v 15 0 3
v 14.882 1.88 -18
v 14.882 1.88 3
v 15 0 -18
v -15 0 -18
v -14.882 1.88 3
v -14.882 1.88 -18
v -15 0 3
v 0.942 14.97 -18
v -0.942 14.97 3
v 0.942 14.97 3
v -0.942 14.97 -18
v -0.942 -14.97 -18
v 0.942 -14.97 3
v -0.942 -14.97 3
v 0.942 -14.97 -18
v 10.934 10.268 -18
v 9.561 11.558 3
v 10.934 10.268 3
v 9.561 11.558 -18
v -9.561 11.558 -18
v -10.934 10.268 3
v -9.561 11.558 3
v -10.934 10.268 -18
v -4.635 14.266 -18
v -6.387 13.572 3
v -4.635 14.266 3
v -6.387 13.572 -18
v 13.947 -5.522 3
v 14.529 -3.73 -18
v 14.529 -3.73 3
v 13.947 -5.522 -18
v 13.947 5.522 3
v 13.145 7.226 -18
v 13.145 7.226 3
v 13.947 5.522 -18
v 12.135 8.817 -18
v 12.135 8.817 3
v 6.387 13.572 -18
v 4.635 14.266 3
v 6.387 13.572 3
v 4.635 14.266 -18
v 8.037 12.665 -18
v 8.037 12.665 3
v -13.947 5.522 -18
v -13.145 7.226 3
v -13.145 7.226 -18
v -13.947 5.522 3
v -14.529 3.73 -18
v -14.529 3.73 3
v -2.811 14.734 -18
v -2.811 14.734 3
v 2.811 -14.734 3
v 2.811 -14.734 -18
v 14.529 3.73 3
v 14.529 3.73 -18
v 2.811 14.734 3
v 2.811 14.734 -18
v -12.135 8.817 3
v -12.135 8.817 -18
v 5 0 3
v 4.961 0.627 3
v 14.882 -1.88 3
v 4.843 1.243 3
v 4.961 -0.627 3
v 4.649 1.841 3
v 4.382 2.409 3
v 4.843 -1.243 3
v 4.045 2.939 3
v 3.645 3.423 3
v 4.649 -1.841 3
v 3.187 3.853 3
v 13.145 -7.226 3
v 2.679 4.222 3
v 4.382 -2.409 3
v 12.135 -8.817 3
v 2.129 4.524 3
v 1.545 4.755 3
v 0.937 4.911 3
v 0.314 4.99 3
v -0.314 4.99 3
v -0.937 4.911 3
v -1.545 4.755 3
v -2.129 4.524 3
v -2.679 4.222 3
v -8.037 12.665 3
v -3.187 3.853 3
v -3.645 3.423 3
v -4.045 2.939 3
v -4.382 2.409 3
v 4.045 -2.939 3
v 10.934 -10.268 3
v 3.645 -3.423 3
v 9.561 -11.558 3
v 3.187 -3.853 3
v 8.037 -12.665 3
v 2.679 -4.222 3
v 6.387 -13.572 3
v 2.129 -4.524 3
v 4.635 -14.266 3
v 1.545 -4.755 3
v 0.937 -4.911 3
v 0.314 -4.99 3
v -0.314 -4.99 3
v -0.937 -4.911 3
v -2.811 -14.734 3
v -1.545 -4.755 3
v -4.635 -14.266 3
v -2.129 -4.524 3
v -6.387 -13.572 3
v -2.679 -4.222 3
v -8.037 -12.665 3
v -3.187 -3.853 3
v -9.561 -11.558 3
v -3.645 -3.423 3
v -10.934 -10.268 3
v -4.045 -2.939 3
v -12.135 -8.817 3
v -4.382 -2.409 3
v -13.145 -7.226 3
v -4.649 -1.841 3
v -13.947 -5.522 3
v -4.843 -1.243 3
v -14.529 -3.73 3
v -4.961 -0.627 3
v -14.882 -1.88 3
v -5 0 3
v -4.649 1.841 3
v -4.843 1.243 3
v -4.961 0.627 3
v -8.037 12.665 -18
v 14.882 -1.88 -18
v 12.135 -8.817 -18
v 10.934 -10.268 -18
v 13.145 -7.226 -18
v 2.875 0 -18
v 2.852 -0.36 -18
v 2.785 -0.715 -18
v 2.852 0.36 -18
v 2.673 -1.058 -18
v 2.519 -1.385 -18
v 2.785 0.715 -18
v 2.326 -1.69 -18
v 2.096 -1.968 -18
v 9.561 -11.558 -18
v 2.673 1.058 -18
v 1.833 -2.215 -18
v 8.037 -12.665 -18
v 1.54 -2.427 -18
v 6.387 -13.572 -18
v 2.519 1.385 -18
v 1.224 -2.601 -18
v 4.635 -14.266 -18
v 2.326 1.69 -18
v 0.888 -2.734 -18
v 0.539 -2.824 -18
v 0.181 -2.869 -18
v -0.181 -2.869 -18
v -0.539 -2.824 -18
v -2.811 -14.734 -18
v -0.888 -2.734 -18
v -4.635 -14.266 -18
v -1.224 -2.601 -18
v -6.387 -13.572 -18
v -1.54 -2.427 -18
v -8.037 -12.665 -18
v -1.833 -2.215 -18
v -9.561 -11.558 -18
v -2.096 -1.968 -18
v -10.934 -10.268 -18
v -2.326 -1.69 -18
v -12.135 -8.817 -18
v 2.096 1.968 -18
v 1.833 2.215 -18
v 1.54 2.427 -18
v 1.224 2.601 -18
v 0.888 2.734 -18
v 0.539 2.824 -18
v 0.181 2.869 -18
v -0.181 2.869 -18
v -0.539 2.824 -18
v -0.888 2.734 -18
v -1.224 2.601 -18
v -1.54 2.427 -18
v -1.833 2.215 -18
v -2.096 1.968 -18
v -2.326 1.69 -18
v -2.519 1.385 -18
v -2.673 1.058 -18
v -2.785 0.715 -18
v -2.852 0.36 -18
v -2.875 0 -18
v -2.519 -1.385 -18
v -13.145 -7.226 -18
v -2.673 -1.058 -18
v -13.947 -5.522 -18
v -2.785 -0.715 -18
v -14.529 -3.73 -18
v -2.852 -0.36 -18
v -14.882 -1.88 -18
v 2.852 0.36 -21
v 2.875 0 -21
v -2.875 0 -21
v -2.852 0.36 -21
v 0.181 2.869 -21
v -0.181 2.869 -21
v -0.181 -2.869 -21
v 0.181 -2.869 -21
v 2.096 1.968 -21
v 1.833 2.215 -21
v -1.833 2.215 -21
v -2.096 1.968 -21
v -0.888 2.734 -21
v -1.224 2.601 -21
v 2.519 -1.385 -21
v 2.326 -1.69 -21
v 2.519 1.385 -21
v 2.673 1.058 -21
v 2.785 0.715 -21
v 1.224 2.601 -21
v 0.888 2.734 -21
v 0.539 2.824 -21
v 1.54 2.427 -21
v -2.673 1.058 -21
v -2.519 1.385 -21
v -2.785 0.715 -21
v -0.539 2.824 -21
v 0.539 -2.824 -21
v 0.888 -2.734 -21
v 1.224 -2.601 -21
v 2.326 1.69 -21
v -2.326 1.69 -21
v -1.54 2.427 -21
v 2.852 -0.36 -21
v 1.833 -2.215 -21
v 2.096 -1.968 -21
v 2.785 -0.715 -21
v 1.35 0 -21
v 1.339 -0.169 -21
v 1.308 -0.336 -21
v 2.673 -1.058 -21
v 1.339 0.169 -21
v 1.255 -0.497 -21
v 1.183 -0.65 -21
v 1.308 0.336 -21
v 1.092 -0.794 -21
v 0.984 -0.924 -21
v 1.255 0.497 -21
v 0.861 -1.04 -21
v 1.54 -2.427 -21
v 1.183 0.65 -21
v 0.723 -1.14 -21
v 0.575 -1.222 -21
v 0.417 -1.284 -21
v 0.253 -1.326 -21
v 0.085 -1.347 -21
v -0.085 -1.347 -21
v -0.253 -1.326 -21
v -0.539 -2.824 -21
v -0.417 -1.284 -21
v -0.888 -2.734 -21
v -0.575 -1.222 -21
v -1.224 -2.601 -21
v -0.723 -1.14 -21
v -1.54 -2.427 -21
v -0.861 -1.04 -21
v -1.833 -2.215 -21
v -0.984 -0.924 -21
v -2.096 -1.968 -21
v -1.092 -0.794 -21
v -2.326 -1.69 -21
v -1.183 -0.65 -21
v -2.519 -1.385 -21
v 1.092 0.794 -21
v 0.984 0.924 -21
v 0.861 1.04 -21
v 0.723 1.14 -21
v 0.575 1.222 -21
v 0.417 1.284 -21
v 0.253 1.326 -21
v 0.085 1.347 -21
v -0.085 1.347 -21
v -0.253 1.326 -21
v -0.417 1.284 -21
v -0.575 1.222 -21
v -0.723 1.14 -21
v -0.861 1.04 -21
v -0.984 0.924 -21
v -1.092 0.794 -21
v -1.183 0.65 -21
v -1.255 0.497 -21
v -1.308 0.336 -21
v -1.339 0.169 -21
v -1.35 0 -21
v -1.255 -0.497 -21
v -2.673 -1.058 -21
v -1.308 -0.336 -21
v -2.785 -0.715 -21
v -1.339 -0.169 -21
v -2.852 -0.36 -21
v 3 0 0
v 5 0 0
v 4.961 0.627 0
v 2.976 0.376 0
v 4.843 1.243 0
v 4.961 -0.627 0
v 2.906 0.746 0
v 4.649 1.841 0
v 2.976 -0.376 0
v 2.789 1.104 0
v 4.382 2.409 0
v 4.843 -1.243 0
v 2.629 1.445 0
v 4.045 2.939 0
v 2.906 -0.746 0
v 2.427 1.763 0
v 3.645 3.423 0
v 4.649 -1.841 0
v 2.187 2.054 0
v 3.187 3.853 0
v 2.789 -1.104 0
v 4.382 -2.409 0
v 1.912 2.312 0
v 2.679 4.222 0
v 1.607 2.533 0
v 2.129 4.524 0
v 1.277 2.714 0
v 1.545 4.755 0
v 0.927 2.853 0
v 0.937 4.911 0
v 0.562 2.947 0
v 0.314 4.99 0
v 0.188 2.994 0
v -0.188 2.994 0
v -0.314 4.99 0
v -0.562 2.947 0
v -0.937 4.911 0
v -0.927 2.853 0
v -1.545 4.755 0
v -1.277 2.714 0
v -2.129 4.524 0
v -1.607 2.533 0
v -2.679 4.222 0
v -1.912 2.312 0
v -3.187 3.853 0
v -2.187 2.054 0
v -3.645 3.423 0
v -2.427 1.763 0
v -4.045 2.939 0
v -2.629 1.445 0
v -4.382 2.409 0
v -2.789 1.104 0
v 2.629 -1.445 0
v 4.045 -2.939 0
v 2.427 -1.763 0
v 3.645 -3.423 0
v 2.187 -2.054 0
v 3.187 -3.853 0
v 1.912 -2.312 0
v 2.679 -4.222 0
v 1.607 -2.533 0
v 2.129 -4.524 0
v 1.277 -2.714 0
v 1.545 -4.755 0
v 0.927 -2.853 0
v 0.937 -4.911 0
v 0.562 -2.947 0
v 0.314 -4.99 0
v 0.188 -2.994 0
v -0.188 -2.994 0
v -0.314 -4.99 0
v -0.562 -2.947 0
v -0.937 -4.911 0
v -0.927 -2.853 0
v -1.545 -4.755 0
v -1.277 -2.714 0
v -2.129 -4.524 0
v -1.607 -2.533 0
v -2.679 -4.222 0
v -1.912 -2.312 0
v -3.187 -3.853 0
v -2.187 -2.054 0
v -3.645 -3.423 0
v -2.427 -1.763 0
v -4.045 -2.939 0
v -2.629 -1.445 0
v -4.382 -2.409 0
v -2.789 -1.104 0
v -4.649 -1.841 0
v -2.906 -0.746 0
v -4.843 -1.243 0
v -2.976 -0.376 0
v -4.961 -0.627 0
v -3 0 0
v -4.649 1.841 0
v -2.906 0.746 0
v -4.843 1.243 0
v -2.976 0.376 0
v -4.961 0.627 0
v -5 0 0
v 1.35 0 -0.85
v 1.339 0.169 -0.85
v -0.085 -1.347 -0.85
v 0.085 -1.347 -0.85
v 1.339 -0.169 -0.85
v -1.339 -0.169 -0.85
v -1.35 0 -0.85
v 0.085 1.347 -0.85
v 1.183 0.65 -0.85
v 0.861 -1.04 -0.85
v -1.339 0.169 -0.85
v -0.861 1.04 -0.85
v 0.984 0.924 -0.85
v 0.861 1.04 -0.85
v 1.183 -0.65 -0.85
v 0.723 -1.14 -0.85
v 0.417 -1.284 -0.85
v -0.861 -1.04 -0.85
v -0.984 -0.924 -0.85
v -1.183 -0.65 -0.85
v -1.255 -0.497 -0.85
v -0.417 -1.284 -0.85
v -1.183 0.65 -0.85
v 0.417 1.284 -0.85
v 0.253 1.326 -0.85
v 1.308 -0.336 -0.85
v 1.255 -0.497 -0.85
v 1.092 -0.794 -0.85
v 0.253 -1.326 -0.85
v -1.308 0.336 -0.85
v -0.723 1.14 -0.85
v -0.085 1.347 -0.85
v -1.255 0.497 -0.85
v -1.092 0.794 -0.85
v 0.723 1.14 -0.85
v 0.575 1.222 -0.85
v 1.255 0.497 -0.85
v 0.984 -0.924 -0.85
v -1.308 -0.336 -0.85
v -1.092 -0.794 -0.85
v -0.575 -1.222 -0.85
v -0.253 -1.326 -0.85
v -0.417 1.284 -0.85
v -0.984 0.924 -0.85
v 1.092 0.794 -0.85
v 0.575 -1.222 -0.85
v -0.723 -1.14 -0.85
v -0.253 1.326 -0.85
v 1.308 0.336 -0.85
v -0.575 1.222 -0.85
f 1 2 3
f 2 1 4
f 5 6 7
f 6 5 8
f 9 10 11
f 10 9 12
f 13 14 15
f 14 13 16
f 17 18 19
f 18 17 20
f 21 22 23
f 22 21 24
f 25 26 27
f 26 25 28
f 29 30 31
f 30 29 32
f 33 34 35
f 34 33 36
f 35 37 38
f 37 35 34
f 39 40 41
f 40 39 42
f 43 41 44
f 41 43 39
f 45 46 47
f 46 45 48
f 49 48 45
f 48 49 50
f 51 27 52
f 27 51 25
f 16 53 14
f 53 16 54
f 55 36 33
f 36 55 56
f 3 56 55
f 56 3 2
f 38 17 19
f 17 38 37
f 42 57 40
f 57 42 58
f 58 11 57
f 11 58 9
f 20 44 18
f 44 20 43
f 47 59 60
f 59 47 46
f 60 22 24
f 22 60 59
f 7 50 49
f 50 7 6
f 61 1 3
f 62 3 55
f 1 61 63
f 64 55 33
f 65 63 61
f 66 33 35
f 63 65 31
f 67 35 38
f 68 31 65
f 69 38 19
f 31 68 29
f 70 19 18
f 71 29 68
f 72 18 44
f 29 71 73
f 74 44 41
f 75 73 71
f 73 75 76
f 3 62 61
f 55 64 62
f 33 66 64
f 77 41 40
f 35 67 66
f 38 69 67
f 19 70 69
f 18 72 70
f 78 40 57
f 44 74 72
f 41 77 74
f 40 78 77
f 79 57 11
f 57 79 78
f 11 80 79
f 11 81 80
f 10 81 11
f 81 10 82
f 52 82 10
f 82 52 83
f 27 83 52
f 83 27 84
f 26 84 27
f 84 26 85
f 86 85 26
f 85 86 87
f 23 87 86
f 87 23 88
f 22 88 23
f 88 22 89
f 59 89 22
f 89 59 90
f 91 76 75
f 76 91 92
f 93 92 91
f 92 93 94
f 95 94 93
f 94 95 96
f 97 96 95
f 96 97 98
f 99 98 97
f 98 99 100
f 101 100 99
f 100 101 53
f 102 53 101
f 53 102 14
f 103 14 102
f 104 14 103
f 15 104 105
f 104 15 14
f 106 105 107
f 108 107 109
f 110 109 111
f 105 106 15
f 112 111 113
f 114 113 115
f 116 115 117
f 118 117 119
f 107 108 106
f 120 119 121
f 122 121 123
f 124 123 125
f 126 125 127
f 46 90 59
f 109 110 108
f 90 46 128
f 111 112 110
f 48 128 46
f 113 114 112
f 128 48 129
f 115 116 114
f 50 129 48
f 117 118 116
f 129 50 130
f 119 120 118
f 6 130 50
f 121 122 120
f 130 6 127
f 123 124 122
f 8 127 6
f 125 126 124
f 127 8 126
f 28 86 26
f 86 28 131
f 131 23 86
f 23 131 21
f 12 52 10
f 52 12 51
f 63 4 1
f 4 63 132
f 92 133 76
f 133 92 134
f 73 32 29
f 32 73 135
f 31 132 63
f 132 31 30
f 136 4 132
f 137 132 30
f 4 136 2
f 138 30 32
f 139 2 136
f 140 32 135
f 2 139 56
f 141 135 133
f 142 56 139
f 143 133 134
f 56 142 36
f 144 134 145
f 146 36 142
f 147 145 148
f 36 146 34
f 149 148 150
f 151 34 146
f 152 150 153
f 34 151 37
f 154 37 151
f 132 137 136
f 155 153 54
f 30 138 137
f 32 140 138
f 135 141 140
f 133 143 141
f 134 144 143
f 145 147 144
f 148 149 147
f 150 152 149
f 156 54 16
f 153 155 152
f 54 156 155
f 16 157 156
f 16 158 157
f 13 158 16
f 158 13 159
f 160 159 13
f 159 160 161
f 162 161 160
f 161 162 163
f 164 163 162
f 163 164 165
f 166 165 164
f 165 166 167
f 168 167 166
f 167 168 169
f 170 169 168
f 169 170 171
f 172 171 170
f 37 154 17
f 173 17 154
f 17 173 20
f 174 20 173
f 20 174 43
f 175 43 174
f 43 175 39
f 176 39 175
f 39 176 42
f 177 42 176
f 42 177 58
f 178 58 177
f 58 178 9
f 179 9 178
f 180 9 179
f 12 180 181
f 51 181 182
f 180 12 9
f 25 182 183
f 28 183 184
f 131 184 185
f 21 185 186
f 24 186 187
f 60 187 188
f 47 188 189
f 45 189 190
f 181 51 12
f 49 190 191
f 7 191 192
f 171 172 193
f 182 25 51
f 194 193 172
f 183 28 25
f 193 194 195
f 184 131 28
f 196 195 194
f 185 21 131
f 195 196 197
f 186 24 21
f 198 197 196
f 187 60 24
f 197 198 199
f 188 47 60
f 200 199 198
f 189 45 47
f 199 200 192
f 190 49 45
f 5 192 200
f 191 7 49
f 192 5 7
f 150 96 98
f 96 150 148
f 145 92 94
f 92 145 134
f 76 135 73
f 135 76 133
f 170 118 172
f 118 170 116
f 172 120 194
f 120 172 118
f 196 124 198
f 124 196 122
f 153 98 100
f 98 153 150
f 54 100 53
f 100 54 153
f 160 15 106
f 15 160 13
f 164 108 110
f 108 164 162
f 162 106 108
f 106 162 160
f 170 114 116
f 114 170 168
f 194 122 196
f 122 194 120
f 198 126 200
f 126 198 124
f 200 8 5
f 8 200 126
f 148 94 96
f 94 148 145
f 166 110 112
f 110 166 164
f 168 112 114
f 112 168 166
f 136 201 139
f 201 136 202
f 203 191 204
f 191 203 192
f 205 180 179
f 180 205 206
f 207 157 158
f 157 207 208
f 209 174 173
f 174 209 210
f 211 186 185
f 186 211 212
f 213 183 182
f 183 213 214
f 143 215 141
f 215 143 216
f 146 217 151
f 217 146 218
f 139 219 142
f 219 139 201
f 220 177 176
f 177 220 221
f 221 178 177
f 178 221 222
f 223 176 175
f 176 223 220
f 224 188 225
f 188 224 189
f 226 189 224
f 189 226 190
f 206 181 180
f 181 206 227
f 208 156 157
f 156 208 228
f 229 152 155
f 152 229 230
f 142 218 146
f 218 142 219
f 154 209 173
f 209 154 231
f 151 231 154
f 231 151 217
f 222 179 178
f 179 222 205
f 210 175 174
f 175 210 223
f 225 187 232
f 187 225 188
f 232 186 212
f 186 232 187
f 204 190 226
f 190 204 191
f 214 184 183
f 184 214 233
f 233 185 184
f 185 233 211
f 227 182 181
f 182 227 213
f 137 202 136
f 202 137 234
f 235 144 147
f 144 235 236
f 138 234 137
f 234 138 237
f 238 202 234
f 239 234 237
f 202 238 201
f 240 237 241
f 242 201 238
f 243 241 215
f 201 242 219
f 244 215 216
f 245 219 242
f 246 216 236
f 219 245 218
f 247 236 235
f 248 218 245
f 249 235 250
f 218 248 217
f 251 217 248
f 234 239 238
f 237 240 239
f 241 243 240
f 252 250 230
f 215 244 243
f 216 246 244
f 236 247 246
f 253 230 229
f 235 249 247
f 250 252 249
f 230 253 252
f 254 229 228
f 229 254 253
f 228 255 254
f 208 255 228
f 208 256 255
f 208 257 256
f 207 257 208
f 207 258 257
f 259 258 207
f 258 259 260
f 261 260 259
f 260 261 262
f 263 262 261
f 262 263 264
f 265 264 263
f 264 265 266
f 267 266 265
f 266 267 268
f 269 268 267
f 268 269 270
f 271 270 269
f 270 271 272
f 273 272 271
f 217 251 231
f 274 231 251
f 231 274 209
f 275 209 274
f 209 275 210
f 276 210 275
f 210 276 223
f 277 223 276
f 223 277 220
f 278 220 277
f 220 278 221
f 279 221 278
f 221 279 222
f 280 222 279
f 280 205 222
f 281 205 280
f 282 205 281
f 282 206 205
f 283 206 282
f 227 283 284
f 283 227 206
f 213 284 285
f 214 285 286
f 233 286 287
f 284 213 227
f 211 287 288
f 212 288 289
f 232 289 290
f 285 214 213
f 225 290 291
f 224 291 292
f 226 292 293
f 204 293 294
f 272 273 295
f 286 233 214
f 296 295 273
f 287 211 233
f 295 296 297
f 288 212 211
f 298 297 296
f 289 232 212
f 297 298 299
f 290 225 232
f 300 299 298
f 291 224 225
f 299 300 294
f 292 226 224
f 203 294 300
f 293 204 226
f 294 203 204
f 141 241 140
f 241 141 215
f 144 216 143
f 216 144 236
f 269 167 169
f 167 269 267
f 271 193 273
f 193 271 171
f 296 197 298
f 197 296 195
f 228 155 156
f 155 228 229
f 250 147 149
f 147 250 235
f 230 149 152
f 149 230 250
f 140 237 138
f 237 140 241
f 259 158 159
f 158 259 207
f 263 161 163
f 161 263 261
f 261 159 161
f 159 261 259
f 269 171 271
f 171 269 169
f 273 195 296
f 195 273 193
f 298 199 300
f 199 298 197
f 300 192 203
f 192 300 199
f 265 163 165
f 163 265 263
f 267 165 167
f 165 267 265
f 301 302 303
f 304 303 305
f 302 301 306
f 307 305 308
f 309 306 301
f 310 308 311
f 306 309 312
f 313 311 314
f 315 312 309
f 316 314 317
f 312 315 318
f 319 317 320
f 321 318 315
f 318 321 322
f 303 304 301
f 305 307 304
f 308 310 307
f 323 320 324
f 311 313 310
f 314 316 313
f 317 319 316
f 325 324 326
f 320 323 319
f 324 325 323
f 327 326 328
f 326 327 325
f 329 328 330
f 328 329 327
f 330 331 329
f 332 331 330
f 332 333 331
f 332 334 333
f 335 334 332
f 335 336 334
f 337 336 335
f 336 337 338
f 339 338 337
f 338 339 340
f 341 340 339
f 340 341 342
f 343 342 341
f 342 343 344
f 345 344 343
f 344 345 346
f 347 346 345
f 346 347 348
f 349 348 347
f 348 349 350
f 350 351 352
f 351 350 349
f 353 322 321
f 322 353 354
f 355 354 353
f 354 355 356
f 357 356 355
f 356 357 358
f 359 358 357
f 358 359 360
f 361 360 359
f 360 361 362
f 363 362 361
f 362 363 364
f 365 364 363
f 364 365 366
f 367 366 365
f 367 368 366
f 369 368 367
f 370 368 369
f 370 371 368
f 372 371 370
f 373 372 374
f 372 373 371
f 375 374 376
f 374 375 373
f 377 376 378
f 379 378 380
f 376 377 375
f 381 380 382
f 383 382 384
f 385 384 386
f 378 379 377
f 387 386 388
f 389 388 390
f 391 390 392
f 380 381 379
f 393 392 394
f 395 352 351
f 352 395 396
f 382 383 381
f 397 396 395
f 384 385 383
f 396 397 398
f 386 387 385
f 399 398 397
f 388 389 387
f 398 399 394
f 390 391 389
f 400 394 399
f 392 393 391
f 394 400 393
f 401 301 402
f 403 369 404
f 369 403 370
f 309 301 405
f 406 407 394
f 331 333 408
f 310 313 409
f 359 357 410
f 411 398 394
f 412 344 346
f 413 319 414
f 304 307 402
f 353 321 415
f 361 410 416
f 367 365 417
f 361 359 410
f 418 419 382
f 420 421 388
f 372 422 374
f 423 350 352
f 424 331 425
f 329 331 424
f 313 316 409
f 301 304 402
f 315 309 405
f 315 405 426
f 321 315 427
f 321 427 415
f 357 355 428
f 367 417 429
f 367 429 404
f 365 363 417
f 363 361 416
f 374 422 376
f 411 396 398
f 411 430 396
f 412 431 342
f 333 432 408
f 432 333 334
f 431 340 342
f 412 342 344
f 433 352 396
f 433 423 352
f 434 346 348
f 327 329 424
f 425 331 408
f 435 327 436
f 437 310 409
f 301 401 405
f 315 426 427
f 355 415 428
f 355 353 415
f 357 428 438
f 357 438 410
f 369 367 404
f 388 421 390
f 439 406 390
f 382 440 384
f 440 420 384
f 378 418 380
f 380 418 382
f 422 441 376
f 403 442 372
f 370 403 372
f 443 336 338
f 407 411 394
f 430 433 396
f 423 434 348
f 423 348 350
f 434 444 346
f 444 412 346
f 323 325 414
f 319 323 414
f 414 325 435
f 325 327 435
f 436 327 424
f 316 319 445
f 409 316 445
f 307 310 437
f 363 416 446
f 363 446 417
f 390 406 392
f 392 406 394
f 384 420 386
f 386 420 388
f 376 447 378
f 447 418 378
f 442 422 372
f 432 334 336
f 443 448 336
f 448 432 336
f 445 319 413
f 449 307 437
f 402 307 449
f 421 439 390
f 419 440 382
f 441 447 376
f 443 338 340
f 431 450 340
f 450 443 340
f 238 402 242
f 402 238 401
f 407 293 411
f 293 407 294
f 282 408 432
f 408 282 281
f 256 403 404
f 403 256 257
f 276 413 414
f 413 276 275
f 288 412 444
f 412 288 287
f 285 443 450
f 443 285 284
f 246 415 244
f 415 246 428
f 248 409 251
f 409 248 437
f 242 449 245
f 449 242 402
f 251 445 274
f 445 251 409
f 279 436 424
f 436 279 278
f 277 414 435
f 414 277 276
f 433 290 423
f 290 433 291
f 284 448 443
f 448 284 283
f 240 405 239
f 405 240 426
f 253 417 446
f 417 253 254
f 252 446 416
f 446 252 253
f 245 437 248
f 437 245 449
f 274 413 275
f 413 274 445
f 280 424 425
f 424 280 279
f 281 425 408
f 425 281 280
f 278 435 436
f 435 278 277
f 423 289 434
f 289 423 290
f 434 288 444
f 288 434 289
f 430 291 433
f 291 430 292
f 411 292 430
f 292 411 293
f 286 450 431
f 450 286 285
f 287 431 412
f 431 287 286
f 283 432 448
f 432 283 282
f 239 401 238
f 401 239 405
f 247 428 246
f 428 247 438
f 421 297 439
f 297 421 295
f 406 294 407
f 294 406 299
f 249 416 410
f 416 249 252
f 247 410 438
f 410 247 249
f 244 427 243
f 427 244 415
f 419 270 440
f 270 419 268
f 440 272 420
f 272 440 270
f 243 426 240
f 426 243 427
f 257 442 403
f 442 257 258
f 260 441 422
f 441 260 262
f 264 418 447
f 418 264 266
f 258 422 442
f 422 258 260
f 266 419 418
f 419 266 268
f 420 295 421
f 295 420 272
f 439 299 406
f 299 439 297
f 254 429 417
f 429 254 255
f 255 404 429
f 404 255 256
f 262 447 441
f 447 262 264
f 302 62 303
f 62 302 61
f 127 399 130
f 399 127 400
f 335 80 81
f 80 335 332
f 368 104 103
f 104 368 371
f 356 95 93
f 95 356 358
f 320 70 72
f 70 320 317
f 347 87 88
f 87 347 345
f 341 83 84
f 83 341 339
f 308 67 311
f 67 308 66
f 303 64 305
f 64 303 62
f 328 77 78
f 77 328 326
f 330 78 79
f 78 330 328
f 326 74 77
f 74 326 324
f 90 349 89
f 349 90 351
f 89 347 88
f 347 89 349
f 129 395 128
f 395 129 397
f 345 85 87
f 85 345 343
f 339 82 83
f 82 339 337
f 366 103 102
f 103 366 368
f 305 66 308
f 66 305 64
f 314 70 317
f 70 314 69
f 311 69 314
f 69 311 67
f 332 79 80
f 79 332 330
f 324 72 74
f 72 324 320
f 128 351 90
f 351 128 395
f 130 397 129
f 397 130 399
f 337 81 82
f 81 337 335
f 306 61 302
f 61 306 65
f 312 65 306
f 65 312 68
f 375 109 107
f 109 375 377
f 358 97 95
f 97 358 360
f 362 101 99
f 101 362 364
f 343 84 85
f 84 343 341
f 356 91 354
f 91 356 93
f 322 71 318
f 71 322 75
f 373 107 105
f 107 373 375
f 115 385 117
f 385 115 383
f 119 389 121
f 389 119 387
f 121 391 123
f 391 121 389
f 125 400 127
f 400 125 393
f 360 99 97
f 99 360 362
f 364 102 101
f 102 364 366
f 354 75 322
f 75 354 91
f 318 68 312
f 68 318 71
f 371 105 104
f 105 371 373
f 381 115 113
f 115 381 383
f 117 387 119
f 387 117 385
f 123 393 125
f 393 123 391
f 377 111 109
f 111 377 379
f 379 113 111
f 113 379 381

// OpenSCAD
$fn = 50;


difference() {
	union() {
		translate(v = [0, 0, -18.0000000000]) {
			cylinder(h = 21, r = 15.0000000000);
		}
		#translate(v = [0, 0, -21.0000000000]) {
			cylinder(h = 21, r = 2.8750000000);
		}
	}
	union() {
		translate(v = [0, 0, 0]) {
			rotate(a = [0, 0, 0]) {
				difference() {
					union() {
						translate(v = [0, 0, -21.0000000000]) {
							cylinder(h = 21, r = 1.0000000000);
						}
						translate(v = [0, 0, -0.8500000000]) {
							cylinder(h = 0.8500000000, r1 = 1.3500000000, r2 = 3.0000000000);
						}
						translate(v = [0, 0, -21.0000000000]) {
							cylinder(h = 21, r = 1.3500000000);
						}
						translate(v = [0, 0, -21.0000000000]) {
							cylinder(h = 21, r = 1.0000000000);
						}
					}
					union();
				}
			}
		}
		#cylinder(h = 3, r = 5.0000000000);
	}
}
